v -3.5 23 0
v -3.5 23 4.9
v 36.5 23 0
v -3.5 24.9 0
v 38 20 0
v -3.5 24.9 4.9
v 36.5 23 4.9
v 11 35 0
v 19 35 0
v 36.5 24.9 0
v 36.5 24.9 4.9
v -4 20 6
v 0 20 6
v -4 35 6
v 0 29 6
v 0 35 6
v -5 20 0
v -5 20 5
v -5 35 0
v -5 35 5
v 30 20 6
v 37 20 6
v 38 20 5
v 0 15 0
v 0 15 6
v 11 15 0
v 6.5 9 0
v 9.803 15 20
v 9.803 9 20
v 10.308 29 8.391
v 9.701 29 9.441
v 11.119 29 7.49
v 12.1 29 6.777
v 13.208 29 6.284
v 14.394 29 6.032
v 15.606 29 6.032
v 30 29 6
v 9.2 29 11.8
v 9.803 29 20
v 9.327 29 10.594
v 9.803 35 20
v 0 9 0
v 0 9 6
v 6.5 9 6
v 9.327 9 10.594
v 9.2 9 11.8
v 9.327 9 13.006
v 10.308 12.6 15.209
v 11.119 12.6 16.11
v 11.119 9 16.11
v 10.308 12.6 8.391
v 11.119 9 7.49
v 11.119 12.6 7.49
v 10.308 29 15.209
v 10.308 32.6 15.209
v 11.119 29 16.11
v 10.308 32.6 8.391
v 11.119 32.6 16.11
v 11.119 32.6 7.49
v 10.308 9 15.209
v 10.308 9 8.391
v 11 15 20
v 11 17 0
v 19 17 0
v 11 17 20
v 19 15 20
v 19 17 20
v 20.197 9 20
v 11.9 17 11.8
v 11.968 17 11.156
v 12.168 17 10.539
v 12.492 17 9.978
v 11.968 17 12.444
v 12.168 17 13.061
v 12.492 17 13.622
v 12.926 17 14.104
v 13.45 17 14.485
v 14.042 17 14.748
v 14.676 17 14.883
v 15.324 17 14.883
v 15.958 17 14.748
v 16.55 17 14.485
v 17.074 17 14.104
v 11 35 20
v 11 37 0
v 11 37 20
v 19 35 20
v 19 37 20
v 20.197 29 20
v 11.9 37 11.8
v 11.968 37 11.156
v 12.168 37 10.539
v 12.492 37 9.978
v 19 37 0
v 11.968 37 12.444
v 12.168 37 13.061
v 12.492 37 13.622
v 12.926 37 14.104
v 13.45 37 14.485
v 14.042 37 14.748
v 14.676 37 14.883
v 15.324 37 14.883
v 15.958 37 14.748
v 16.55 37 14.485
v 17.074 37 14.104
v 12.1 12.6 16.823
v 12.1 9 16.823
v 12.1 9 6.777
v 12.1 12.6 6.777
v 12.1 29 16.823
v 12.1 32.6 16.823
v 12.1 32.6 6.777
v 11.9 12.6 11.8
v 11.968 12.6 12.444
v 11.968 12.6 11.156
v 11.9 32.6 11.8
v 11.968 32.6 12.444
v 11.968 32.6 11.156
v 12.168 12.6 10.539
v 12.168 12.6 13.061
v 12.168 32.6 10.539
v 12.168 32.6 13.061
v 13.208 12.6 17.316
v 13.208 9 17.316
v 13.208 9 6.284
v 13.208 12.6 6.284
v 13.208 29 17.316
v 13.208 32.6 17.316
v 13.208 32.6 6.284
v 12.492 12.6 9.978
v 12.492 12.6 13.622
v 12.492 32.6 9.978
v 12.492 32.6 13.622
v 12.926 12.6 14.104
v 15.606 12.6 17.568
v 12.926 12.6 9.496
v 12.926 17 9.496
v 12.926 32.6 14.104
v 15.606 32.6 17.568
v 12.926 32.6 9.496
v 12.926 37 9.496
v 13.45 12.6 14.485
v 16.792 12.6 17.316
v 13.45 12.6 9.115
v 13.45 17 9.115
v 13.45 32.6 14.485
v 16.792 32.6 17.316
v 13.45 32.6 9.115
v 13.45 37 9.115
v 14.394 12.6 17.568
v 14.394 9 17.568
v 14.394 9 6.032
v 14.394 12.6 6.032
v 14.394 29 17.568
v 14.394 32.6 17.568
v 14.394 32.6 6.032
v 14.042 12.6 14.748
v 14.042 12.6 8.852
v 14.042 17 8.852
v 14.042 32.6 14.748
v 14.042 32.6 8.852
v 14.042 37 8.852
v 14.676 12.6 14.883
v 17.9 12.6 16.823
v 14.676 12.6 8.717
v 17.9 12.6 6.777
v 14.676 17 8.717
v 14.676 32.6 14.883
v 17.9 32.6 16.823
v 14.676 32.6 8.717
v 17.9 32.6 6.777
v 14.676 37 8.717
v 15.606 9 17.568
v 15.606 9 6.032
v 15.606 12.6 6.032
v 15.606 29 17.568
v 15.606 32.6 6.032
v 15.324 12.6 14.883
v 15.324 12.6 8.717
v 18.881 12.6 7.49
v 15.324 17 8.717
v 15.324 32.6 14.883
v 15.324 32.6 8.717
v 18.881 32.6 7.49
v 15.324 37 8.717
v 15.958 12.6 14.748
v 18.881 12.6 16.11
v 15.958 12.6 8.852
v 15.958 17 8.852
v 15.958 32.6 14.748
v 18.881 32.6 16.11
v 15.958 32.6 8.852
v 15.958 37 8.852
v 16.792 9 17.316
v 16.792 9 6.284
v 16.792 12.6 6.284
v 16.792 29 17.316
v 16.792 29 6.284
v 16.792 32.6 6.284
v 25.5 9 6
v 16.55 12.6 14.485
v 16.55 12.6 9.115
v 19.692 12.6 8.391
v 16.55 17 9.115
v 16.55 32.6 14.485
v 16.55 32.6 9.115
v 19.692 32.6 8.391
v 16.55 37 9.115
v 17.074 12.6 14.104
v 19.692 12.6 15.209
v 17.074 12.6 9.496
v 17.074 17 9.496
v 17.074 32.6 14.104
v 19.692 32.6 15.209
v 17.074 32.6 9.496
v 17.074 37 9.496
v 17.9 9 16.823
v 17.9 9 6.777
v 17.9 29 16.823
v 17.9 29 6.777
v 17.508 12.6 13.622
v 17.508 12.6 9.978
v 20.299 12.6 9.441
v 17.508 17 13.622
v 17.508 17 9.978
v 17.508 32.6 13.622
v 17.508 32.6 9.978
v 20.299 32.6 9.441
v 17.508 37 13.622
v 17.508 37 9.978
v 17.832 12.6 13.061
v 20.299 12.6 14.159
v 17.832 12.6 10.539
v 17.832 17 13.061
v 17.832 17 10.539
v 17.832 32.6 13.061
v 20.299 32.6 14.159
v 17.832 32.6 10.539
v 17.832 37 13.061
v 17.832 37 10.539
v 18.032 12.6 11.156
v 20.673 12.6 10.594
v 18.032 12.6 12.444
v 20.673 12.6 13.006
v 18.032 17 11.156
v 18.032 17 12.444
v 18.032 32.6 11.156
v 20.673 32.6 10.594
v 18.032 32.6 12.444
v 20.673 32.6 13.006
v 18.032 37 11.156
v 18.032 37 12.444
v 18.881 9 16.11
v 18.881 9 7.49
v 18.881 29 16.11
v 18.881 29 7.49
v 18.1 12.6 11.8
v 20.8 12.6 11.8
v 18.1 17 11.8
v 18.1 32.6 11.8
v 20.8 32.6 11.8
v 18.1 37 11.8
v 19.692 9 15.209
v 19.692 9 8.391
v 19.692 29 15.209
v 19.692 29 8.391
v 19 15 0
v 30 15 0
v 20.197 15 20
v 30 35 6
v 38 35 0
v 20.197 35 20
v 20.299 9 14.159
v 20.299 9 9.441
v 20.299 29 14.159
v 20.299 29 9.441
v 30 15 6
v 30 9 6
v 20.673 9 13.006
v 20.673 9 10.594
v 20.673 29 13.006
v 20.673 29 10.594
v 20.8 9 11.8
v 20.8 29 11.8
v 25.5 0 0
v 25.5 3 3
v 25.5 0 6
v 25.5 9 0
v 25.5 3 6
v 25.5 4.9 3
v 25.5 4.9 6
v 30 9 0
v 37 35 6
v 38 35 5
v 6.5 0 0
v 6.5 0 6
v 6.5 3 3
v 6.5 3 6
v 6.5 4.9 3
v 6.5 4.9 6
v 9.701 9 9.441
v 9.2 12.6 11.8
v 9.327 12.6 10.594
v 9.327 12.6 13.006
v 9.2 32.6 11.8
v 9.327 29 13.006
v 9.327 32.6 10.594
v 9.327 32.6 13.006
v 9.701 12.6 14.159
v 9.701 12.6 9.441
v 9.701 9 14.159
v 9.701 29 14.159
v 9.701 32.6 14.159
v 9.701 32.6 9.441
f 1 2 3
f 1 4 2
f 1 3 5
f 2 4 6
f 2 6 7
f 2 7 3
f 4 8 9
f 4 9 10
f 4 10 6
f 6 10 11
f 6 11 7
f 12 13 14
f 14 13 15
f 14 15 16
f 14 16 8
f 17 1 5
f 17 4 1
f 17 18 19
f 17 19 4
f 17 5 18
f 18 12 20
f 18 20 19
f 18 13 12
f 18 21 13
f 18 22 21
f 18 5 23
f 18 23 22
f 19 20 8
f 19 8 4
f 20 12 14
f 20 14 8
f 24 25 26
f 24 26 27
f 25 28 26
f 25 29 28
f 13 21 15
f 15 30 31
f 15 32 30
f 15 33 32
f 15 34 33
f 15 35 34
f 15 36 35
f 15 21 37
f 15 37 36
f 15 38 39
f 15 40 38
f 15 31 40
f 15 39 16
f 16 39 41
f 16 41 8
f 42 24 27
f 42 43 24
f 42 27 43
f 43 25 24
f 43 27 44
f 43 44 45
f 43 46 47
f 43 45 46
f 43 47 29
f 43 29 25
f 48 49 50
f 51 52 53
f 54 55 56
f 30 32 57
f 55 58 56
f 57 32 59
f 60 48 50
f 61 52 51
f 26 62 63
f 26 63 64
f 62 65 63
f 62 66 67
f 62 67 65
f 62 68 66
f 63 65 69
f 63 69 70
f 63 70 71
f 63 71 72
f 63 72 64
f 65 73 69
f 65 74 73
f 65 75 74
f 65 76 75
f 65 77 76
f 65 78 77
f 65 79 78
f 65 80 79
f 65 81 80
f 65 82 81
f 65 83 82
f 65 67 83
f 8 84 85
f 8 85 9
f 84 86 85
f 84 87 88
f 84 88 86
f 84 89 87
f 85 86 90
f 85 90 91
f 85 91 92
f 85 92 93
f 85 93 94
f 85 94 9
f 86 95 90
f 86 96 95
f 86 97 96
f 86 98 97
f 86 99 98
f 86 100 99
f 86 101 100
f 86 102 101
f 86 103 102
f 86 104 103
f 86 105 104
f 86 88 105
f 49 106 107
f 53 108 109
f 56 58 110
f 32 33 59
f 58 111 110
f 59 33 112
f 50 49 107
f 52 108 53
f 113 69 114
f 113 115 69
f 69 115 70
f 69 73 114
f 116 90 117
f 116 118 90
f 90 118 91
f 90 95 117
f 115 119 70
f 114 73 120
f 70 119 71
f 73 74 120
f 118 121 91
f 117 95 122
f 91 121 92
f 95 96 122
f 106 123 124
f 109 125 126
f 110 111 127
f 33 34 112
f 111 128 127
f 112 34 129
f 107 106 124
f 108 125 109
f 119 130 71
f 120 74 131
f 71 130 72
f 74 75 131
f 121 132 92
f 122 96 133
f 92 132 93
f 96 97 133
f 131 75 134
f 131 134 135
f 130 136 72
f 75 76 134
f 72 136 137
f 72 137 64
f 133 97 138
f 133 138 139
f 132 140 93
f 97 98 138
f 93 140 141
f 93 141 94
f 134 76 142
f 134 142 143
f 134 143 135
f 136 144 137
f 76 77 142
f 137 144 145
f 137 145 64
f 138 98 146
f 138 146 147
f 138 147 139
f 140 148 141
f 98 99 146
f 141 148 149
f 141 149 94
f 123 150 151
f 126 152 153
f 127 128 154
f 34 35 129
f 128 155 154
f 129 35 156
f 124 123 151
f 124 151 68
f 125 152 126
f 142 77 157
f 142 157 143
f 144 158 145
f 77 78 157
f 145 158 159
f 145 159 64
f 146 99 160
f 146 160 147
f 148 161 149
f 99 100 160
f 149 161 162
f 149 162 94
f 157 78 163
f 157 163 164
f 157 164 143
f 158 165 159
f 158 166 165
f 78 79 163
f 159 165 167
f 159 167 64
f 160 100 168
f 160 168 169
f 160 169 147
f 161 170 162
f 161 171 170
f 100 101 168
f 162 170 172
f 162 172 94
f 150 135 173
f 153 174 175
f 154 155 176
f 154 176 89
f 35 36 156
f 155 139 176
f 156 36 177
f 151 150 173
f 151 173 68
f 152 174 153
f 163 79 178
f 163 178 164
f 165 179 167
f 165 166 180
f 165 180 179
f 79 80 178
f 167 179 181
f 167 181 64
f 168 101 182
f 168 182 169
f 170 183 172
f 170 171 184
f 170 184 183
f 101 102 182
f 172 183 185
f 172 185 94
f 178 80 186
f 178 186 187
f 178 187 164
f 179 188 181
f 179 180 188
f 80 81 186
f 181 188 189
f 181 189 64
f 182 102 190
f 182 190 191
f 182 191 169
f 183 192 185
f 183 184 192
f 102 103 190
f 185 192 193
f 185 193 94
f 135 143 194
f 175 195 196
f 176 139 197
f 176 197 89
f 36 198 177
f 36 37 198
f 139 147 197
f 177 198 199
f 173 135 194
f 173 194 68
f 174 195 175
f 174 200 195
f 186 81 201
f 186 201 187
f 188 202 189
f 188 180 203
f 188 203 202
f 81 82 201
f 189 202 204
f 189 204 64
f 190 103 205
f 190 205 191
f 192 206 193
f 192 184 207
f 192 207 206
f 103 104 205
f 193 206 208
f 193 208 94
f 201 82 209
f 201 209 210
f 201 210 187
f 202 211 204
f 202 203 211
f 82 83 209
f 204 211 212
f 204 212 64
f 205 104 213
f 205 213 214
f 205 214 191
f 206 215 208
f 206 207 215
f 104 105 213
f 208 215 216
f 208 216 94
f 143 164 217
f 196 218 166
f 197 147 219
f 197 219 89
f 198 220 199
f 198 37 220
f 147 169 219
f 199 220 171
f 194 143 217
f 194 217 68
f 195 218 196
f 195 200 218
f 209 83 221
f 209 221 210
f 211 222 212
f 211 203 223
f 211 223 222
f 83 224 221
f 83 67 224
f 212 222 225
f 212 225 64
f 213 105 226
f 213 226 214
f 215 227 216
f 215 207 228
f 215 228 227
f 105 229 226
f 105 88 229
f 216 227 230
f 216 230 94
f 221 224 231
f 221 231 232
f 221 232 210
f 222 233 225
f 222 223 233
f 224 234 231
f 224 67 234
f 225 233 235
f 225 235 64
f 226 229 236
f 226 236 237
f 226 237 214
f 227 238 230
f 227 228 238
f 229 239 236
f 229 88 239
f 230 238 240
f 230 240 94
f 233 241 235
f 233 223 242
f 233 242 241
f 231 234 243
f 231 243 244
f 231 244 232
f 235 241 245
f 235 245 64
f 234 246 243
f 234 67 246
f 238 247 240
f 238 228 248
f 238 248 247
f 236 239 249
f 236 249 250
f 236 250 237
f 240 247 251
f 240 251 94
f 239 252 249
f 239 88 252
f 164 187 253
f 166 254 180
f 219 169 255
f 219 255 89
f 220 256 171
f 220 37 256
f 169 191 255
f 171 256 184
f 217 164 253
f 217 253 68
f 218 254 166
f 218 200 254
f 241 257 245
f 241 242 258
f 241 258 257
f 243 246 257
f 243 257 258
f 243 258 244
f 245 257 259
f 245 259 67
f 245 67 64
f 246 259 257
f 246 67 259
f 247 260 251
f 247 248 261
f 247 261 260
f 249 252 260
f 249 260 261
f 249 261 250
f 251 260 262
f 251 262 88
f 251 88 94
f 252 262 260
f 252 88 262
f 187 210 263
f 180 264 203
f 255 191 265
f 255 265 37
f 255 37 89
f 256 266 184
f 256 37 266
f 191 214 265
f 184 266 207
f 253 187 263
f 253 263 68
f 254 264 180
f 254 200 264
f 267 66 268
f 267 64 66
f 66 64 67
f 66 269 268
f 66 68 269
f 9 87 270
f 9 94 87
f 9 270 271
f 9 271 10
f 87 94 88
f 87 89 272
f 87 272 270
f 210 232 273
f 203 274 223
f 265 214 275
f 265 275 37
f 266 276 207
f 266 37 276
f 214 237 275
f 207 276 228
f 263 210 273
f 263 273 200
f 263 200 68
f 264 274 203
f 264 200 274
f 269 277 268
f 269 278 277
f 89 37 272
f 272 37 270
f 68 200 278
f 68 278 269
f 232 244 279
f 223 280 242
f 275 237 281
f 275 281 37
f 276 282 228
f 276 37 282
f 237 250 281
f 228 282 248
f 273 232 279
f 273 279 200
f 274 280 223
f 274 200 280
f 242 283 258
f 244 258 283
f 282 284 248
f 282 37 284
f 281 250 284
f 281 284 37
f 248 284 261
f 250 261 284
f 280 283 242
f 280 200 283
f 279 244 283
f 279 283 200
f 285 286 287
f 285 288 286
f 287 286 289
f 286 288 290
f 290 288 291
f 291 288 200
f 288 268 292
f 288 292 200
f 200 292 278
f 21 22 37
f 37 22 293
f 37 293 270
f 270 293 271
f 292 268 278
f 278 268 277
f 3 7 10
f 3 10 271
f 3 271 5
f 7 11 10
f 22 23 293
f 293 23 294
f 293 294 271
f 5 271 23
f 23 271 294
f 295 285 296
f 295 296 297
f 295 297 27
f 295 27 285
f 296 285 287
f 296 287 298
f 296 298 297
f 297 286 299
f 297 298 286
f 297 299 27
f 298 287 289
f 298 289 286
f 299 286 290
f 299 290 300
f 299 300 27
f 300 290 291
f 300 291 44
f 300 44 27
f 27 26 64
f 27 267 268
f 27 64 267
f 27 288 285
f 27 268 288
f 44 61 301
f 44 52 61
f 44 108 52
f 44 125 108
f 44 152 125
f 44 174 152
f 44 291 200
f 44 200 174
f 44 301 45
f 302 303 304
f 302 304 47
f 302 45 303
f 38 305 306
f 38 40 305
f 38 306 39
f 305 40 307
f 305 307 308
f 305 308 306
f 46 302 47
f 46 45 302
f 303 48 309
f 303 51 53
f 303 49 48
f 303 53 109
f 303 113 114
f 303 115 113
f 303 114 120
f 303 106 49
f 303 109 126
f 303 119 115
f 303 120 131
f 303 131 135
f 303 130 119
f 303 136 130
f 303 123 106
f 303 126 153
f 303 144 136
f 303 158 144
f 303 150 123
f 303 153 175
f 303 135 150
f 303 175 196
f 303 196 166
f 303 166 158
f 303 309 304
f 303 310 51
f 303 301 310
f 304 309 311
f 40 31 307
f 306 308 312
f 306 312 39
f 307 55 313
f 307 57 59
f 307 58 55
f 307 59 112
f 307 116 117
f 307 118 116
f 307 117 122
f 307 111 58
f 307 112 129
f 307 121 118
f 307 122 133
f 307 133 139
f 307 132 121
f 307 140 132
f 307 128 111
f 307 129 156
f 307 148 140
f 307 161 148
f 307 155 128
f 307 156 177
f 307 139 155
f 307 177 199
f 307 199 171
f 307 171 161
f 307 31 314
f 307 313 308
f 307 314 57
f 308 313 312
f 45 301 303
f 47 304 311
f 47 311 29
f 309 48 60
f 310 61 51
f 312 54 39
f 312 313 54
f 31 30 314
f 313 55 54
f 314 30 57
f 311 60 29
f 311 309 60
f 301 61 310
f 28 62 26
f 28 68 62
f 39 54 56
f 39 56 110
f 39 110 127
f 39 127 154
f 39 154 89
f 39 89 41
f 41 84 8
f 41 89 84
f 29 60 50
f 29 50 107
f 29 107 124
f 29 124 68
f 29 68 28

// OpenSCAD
// file: ../configuration.scad
// Vyska vrstvy pro tisknuti dilu [mm]
layer_height = 0.25; //Slic3r->Print Settings->Layers and perimeters->Layer height

// Rezerva prumeru hlavy sroubu [mm]
spare = 1;
// Prumer hlavy M6 sroubu (pricte se rezerva) [mm]
M6_head_diameter = 10.6+spare;
//M6_head_diameter = 12+spare;

// Vyska hlavy M6 sroubu (dulezite pro zapusteni hlavy sroubu do plastu) [mm]
M6_head_height = 3.6;
//M6_head_height = 4.5;

//Prumery sroubu a tyci
M8_smooth_rod_diameter = 8.1;
M8_smooth_rod_diameter_catch = 8.2;
M6_diameter = 6.2;
M6_diamater_horizontal = 6.5;
M3_diameter = 3.2;
M3_diameter_horizontal = 3.2;

//Prumery matic
M3_nut_diameter = 6.8;
M3_nut_diameter_horizontal = 6.8;

//ALU profile parameters
ALU_cut_width = 7.9;
ALU_cut_width_horizontal = 7.9;

// Delka motoru (ovlivni dily pro osy Z a Y)
//SX17-1003LQFE (doporuceno hlavne na osu Z)
//motor_length = 29.5;
//SX17-1003 (doporuceno hlavne na osu Z)
motor_length = 34;
//SX17-1005
//motor_length = 40;
//SX17-0905 - zde je jiz problem s velkou vyskou motoru na ose Z - musi se upravit endstop-holder
//motor_length = 48;

// Sirka vytlacovaneho materialu [mm]
extrusion_width = 0.66; //Slic3r->Print Settings->Advanced->Default extrusion width

/// Vyberte typ remenu ******************************************************

// GT2 
//belt_tooth_distance = 2;
//belt_tooth_ratio = 0.5;

// T2.5
belt_tooth_distance = 2.5;
belt_tooth_ratio = 0.68;
// main file
include <../configuration.scad>

module bottom_holder_base(vyska,sirka,delka){
	// Arduino holder
	translate([15-8.5,0,0]) cube([sirka,delka,vyska]);
	// Profile mount
	translate([0,delka-6,0]) cube([30,6,20]);
	// Guide
	translate([15-4,delka,0]) cube([8,2,20]);
}

module top_holder_base(vyska,sirka,delka){
	// Arduino holder
	translate([-5,0,0]) cube([sirka,delka,vyska]);
	// Profile mount
	translate([0,delka-6,0]) cube([30,6,20]);
	// Guide
	translate([15-4,delka,0]) cube([8,2,20]);
}

module bottom_holder_cuts(vyska,delka,vyrez_sirka){
	translate([-3.5,3,vyska-3]) cube([vyrez_sirka,1.9,5]);
	// M6 screw hole
	translate([15,delka-6+M6_head_height,vyska+M6_head_diameter/2]) rotate([90,0,0]) cylinder(r=M6_head_diameter/2,h=10,$fn=30);
	translate([15,0,vyska+M6_head_diameter/2]) rotate([-90,0,0]) cylinder(r=3.1,h=20,$fn=30);
	// Material saving
	translate([0,0,vyska]) rotate([0,-55,0]) cube([30,30,30]);
	translate([30,0,vyska]) rotate([0,-35,0]) cube([30,30,30]);	
}

module top_holder_cuts(vyska,delka,vyrez_sirka){
	translate([-3.5,3,-0.1]) cube([vyrez_sirka,1.9,5]);
	// M6 screw hole
	translate([15,delka-6+M6_head_height,vyska+M6_head_diameter/2]) rotate([90,0,0]) cylinder(r=M6_head_diameter/2,h=10,$fn=30);
	translate([15,0,vyska+M6_head_diameter/2]) rotate([-90,0,0]) cylinder(r=3.1,h=20,$fn=30);
	// Material saving
	translate([0,0,vyska]) rotate([0,-55,0]) cube([30,30,30]);
	translate([30,0,vyska]) rotate([0,-35,0]) cube([30,30,30]);	
	translate([vyrez_sirka-2,-0.1,vyska-1]) rotate([0,-45,0]) cube([10,20,10]);
	translate([-5,-0.1,vyska-1]) rotate([0,-45,0]) cube([10,20,10]);
}


difference(){
	bottom_holder_base(6,19,15);
	bottom_holder_cuts(6,15,40);
}

translate([0,20,0]) difference(){
	top_holder_base(6,43,15);
	top_holder_cuts(6,15,40);
}	
